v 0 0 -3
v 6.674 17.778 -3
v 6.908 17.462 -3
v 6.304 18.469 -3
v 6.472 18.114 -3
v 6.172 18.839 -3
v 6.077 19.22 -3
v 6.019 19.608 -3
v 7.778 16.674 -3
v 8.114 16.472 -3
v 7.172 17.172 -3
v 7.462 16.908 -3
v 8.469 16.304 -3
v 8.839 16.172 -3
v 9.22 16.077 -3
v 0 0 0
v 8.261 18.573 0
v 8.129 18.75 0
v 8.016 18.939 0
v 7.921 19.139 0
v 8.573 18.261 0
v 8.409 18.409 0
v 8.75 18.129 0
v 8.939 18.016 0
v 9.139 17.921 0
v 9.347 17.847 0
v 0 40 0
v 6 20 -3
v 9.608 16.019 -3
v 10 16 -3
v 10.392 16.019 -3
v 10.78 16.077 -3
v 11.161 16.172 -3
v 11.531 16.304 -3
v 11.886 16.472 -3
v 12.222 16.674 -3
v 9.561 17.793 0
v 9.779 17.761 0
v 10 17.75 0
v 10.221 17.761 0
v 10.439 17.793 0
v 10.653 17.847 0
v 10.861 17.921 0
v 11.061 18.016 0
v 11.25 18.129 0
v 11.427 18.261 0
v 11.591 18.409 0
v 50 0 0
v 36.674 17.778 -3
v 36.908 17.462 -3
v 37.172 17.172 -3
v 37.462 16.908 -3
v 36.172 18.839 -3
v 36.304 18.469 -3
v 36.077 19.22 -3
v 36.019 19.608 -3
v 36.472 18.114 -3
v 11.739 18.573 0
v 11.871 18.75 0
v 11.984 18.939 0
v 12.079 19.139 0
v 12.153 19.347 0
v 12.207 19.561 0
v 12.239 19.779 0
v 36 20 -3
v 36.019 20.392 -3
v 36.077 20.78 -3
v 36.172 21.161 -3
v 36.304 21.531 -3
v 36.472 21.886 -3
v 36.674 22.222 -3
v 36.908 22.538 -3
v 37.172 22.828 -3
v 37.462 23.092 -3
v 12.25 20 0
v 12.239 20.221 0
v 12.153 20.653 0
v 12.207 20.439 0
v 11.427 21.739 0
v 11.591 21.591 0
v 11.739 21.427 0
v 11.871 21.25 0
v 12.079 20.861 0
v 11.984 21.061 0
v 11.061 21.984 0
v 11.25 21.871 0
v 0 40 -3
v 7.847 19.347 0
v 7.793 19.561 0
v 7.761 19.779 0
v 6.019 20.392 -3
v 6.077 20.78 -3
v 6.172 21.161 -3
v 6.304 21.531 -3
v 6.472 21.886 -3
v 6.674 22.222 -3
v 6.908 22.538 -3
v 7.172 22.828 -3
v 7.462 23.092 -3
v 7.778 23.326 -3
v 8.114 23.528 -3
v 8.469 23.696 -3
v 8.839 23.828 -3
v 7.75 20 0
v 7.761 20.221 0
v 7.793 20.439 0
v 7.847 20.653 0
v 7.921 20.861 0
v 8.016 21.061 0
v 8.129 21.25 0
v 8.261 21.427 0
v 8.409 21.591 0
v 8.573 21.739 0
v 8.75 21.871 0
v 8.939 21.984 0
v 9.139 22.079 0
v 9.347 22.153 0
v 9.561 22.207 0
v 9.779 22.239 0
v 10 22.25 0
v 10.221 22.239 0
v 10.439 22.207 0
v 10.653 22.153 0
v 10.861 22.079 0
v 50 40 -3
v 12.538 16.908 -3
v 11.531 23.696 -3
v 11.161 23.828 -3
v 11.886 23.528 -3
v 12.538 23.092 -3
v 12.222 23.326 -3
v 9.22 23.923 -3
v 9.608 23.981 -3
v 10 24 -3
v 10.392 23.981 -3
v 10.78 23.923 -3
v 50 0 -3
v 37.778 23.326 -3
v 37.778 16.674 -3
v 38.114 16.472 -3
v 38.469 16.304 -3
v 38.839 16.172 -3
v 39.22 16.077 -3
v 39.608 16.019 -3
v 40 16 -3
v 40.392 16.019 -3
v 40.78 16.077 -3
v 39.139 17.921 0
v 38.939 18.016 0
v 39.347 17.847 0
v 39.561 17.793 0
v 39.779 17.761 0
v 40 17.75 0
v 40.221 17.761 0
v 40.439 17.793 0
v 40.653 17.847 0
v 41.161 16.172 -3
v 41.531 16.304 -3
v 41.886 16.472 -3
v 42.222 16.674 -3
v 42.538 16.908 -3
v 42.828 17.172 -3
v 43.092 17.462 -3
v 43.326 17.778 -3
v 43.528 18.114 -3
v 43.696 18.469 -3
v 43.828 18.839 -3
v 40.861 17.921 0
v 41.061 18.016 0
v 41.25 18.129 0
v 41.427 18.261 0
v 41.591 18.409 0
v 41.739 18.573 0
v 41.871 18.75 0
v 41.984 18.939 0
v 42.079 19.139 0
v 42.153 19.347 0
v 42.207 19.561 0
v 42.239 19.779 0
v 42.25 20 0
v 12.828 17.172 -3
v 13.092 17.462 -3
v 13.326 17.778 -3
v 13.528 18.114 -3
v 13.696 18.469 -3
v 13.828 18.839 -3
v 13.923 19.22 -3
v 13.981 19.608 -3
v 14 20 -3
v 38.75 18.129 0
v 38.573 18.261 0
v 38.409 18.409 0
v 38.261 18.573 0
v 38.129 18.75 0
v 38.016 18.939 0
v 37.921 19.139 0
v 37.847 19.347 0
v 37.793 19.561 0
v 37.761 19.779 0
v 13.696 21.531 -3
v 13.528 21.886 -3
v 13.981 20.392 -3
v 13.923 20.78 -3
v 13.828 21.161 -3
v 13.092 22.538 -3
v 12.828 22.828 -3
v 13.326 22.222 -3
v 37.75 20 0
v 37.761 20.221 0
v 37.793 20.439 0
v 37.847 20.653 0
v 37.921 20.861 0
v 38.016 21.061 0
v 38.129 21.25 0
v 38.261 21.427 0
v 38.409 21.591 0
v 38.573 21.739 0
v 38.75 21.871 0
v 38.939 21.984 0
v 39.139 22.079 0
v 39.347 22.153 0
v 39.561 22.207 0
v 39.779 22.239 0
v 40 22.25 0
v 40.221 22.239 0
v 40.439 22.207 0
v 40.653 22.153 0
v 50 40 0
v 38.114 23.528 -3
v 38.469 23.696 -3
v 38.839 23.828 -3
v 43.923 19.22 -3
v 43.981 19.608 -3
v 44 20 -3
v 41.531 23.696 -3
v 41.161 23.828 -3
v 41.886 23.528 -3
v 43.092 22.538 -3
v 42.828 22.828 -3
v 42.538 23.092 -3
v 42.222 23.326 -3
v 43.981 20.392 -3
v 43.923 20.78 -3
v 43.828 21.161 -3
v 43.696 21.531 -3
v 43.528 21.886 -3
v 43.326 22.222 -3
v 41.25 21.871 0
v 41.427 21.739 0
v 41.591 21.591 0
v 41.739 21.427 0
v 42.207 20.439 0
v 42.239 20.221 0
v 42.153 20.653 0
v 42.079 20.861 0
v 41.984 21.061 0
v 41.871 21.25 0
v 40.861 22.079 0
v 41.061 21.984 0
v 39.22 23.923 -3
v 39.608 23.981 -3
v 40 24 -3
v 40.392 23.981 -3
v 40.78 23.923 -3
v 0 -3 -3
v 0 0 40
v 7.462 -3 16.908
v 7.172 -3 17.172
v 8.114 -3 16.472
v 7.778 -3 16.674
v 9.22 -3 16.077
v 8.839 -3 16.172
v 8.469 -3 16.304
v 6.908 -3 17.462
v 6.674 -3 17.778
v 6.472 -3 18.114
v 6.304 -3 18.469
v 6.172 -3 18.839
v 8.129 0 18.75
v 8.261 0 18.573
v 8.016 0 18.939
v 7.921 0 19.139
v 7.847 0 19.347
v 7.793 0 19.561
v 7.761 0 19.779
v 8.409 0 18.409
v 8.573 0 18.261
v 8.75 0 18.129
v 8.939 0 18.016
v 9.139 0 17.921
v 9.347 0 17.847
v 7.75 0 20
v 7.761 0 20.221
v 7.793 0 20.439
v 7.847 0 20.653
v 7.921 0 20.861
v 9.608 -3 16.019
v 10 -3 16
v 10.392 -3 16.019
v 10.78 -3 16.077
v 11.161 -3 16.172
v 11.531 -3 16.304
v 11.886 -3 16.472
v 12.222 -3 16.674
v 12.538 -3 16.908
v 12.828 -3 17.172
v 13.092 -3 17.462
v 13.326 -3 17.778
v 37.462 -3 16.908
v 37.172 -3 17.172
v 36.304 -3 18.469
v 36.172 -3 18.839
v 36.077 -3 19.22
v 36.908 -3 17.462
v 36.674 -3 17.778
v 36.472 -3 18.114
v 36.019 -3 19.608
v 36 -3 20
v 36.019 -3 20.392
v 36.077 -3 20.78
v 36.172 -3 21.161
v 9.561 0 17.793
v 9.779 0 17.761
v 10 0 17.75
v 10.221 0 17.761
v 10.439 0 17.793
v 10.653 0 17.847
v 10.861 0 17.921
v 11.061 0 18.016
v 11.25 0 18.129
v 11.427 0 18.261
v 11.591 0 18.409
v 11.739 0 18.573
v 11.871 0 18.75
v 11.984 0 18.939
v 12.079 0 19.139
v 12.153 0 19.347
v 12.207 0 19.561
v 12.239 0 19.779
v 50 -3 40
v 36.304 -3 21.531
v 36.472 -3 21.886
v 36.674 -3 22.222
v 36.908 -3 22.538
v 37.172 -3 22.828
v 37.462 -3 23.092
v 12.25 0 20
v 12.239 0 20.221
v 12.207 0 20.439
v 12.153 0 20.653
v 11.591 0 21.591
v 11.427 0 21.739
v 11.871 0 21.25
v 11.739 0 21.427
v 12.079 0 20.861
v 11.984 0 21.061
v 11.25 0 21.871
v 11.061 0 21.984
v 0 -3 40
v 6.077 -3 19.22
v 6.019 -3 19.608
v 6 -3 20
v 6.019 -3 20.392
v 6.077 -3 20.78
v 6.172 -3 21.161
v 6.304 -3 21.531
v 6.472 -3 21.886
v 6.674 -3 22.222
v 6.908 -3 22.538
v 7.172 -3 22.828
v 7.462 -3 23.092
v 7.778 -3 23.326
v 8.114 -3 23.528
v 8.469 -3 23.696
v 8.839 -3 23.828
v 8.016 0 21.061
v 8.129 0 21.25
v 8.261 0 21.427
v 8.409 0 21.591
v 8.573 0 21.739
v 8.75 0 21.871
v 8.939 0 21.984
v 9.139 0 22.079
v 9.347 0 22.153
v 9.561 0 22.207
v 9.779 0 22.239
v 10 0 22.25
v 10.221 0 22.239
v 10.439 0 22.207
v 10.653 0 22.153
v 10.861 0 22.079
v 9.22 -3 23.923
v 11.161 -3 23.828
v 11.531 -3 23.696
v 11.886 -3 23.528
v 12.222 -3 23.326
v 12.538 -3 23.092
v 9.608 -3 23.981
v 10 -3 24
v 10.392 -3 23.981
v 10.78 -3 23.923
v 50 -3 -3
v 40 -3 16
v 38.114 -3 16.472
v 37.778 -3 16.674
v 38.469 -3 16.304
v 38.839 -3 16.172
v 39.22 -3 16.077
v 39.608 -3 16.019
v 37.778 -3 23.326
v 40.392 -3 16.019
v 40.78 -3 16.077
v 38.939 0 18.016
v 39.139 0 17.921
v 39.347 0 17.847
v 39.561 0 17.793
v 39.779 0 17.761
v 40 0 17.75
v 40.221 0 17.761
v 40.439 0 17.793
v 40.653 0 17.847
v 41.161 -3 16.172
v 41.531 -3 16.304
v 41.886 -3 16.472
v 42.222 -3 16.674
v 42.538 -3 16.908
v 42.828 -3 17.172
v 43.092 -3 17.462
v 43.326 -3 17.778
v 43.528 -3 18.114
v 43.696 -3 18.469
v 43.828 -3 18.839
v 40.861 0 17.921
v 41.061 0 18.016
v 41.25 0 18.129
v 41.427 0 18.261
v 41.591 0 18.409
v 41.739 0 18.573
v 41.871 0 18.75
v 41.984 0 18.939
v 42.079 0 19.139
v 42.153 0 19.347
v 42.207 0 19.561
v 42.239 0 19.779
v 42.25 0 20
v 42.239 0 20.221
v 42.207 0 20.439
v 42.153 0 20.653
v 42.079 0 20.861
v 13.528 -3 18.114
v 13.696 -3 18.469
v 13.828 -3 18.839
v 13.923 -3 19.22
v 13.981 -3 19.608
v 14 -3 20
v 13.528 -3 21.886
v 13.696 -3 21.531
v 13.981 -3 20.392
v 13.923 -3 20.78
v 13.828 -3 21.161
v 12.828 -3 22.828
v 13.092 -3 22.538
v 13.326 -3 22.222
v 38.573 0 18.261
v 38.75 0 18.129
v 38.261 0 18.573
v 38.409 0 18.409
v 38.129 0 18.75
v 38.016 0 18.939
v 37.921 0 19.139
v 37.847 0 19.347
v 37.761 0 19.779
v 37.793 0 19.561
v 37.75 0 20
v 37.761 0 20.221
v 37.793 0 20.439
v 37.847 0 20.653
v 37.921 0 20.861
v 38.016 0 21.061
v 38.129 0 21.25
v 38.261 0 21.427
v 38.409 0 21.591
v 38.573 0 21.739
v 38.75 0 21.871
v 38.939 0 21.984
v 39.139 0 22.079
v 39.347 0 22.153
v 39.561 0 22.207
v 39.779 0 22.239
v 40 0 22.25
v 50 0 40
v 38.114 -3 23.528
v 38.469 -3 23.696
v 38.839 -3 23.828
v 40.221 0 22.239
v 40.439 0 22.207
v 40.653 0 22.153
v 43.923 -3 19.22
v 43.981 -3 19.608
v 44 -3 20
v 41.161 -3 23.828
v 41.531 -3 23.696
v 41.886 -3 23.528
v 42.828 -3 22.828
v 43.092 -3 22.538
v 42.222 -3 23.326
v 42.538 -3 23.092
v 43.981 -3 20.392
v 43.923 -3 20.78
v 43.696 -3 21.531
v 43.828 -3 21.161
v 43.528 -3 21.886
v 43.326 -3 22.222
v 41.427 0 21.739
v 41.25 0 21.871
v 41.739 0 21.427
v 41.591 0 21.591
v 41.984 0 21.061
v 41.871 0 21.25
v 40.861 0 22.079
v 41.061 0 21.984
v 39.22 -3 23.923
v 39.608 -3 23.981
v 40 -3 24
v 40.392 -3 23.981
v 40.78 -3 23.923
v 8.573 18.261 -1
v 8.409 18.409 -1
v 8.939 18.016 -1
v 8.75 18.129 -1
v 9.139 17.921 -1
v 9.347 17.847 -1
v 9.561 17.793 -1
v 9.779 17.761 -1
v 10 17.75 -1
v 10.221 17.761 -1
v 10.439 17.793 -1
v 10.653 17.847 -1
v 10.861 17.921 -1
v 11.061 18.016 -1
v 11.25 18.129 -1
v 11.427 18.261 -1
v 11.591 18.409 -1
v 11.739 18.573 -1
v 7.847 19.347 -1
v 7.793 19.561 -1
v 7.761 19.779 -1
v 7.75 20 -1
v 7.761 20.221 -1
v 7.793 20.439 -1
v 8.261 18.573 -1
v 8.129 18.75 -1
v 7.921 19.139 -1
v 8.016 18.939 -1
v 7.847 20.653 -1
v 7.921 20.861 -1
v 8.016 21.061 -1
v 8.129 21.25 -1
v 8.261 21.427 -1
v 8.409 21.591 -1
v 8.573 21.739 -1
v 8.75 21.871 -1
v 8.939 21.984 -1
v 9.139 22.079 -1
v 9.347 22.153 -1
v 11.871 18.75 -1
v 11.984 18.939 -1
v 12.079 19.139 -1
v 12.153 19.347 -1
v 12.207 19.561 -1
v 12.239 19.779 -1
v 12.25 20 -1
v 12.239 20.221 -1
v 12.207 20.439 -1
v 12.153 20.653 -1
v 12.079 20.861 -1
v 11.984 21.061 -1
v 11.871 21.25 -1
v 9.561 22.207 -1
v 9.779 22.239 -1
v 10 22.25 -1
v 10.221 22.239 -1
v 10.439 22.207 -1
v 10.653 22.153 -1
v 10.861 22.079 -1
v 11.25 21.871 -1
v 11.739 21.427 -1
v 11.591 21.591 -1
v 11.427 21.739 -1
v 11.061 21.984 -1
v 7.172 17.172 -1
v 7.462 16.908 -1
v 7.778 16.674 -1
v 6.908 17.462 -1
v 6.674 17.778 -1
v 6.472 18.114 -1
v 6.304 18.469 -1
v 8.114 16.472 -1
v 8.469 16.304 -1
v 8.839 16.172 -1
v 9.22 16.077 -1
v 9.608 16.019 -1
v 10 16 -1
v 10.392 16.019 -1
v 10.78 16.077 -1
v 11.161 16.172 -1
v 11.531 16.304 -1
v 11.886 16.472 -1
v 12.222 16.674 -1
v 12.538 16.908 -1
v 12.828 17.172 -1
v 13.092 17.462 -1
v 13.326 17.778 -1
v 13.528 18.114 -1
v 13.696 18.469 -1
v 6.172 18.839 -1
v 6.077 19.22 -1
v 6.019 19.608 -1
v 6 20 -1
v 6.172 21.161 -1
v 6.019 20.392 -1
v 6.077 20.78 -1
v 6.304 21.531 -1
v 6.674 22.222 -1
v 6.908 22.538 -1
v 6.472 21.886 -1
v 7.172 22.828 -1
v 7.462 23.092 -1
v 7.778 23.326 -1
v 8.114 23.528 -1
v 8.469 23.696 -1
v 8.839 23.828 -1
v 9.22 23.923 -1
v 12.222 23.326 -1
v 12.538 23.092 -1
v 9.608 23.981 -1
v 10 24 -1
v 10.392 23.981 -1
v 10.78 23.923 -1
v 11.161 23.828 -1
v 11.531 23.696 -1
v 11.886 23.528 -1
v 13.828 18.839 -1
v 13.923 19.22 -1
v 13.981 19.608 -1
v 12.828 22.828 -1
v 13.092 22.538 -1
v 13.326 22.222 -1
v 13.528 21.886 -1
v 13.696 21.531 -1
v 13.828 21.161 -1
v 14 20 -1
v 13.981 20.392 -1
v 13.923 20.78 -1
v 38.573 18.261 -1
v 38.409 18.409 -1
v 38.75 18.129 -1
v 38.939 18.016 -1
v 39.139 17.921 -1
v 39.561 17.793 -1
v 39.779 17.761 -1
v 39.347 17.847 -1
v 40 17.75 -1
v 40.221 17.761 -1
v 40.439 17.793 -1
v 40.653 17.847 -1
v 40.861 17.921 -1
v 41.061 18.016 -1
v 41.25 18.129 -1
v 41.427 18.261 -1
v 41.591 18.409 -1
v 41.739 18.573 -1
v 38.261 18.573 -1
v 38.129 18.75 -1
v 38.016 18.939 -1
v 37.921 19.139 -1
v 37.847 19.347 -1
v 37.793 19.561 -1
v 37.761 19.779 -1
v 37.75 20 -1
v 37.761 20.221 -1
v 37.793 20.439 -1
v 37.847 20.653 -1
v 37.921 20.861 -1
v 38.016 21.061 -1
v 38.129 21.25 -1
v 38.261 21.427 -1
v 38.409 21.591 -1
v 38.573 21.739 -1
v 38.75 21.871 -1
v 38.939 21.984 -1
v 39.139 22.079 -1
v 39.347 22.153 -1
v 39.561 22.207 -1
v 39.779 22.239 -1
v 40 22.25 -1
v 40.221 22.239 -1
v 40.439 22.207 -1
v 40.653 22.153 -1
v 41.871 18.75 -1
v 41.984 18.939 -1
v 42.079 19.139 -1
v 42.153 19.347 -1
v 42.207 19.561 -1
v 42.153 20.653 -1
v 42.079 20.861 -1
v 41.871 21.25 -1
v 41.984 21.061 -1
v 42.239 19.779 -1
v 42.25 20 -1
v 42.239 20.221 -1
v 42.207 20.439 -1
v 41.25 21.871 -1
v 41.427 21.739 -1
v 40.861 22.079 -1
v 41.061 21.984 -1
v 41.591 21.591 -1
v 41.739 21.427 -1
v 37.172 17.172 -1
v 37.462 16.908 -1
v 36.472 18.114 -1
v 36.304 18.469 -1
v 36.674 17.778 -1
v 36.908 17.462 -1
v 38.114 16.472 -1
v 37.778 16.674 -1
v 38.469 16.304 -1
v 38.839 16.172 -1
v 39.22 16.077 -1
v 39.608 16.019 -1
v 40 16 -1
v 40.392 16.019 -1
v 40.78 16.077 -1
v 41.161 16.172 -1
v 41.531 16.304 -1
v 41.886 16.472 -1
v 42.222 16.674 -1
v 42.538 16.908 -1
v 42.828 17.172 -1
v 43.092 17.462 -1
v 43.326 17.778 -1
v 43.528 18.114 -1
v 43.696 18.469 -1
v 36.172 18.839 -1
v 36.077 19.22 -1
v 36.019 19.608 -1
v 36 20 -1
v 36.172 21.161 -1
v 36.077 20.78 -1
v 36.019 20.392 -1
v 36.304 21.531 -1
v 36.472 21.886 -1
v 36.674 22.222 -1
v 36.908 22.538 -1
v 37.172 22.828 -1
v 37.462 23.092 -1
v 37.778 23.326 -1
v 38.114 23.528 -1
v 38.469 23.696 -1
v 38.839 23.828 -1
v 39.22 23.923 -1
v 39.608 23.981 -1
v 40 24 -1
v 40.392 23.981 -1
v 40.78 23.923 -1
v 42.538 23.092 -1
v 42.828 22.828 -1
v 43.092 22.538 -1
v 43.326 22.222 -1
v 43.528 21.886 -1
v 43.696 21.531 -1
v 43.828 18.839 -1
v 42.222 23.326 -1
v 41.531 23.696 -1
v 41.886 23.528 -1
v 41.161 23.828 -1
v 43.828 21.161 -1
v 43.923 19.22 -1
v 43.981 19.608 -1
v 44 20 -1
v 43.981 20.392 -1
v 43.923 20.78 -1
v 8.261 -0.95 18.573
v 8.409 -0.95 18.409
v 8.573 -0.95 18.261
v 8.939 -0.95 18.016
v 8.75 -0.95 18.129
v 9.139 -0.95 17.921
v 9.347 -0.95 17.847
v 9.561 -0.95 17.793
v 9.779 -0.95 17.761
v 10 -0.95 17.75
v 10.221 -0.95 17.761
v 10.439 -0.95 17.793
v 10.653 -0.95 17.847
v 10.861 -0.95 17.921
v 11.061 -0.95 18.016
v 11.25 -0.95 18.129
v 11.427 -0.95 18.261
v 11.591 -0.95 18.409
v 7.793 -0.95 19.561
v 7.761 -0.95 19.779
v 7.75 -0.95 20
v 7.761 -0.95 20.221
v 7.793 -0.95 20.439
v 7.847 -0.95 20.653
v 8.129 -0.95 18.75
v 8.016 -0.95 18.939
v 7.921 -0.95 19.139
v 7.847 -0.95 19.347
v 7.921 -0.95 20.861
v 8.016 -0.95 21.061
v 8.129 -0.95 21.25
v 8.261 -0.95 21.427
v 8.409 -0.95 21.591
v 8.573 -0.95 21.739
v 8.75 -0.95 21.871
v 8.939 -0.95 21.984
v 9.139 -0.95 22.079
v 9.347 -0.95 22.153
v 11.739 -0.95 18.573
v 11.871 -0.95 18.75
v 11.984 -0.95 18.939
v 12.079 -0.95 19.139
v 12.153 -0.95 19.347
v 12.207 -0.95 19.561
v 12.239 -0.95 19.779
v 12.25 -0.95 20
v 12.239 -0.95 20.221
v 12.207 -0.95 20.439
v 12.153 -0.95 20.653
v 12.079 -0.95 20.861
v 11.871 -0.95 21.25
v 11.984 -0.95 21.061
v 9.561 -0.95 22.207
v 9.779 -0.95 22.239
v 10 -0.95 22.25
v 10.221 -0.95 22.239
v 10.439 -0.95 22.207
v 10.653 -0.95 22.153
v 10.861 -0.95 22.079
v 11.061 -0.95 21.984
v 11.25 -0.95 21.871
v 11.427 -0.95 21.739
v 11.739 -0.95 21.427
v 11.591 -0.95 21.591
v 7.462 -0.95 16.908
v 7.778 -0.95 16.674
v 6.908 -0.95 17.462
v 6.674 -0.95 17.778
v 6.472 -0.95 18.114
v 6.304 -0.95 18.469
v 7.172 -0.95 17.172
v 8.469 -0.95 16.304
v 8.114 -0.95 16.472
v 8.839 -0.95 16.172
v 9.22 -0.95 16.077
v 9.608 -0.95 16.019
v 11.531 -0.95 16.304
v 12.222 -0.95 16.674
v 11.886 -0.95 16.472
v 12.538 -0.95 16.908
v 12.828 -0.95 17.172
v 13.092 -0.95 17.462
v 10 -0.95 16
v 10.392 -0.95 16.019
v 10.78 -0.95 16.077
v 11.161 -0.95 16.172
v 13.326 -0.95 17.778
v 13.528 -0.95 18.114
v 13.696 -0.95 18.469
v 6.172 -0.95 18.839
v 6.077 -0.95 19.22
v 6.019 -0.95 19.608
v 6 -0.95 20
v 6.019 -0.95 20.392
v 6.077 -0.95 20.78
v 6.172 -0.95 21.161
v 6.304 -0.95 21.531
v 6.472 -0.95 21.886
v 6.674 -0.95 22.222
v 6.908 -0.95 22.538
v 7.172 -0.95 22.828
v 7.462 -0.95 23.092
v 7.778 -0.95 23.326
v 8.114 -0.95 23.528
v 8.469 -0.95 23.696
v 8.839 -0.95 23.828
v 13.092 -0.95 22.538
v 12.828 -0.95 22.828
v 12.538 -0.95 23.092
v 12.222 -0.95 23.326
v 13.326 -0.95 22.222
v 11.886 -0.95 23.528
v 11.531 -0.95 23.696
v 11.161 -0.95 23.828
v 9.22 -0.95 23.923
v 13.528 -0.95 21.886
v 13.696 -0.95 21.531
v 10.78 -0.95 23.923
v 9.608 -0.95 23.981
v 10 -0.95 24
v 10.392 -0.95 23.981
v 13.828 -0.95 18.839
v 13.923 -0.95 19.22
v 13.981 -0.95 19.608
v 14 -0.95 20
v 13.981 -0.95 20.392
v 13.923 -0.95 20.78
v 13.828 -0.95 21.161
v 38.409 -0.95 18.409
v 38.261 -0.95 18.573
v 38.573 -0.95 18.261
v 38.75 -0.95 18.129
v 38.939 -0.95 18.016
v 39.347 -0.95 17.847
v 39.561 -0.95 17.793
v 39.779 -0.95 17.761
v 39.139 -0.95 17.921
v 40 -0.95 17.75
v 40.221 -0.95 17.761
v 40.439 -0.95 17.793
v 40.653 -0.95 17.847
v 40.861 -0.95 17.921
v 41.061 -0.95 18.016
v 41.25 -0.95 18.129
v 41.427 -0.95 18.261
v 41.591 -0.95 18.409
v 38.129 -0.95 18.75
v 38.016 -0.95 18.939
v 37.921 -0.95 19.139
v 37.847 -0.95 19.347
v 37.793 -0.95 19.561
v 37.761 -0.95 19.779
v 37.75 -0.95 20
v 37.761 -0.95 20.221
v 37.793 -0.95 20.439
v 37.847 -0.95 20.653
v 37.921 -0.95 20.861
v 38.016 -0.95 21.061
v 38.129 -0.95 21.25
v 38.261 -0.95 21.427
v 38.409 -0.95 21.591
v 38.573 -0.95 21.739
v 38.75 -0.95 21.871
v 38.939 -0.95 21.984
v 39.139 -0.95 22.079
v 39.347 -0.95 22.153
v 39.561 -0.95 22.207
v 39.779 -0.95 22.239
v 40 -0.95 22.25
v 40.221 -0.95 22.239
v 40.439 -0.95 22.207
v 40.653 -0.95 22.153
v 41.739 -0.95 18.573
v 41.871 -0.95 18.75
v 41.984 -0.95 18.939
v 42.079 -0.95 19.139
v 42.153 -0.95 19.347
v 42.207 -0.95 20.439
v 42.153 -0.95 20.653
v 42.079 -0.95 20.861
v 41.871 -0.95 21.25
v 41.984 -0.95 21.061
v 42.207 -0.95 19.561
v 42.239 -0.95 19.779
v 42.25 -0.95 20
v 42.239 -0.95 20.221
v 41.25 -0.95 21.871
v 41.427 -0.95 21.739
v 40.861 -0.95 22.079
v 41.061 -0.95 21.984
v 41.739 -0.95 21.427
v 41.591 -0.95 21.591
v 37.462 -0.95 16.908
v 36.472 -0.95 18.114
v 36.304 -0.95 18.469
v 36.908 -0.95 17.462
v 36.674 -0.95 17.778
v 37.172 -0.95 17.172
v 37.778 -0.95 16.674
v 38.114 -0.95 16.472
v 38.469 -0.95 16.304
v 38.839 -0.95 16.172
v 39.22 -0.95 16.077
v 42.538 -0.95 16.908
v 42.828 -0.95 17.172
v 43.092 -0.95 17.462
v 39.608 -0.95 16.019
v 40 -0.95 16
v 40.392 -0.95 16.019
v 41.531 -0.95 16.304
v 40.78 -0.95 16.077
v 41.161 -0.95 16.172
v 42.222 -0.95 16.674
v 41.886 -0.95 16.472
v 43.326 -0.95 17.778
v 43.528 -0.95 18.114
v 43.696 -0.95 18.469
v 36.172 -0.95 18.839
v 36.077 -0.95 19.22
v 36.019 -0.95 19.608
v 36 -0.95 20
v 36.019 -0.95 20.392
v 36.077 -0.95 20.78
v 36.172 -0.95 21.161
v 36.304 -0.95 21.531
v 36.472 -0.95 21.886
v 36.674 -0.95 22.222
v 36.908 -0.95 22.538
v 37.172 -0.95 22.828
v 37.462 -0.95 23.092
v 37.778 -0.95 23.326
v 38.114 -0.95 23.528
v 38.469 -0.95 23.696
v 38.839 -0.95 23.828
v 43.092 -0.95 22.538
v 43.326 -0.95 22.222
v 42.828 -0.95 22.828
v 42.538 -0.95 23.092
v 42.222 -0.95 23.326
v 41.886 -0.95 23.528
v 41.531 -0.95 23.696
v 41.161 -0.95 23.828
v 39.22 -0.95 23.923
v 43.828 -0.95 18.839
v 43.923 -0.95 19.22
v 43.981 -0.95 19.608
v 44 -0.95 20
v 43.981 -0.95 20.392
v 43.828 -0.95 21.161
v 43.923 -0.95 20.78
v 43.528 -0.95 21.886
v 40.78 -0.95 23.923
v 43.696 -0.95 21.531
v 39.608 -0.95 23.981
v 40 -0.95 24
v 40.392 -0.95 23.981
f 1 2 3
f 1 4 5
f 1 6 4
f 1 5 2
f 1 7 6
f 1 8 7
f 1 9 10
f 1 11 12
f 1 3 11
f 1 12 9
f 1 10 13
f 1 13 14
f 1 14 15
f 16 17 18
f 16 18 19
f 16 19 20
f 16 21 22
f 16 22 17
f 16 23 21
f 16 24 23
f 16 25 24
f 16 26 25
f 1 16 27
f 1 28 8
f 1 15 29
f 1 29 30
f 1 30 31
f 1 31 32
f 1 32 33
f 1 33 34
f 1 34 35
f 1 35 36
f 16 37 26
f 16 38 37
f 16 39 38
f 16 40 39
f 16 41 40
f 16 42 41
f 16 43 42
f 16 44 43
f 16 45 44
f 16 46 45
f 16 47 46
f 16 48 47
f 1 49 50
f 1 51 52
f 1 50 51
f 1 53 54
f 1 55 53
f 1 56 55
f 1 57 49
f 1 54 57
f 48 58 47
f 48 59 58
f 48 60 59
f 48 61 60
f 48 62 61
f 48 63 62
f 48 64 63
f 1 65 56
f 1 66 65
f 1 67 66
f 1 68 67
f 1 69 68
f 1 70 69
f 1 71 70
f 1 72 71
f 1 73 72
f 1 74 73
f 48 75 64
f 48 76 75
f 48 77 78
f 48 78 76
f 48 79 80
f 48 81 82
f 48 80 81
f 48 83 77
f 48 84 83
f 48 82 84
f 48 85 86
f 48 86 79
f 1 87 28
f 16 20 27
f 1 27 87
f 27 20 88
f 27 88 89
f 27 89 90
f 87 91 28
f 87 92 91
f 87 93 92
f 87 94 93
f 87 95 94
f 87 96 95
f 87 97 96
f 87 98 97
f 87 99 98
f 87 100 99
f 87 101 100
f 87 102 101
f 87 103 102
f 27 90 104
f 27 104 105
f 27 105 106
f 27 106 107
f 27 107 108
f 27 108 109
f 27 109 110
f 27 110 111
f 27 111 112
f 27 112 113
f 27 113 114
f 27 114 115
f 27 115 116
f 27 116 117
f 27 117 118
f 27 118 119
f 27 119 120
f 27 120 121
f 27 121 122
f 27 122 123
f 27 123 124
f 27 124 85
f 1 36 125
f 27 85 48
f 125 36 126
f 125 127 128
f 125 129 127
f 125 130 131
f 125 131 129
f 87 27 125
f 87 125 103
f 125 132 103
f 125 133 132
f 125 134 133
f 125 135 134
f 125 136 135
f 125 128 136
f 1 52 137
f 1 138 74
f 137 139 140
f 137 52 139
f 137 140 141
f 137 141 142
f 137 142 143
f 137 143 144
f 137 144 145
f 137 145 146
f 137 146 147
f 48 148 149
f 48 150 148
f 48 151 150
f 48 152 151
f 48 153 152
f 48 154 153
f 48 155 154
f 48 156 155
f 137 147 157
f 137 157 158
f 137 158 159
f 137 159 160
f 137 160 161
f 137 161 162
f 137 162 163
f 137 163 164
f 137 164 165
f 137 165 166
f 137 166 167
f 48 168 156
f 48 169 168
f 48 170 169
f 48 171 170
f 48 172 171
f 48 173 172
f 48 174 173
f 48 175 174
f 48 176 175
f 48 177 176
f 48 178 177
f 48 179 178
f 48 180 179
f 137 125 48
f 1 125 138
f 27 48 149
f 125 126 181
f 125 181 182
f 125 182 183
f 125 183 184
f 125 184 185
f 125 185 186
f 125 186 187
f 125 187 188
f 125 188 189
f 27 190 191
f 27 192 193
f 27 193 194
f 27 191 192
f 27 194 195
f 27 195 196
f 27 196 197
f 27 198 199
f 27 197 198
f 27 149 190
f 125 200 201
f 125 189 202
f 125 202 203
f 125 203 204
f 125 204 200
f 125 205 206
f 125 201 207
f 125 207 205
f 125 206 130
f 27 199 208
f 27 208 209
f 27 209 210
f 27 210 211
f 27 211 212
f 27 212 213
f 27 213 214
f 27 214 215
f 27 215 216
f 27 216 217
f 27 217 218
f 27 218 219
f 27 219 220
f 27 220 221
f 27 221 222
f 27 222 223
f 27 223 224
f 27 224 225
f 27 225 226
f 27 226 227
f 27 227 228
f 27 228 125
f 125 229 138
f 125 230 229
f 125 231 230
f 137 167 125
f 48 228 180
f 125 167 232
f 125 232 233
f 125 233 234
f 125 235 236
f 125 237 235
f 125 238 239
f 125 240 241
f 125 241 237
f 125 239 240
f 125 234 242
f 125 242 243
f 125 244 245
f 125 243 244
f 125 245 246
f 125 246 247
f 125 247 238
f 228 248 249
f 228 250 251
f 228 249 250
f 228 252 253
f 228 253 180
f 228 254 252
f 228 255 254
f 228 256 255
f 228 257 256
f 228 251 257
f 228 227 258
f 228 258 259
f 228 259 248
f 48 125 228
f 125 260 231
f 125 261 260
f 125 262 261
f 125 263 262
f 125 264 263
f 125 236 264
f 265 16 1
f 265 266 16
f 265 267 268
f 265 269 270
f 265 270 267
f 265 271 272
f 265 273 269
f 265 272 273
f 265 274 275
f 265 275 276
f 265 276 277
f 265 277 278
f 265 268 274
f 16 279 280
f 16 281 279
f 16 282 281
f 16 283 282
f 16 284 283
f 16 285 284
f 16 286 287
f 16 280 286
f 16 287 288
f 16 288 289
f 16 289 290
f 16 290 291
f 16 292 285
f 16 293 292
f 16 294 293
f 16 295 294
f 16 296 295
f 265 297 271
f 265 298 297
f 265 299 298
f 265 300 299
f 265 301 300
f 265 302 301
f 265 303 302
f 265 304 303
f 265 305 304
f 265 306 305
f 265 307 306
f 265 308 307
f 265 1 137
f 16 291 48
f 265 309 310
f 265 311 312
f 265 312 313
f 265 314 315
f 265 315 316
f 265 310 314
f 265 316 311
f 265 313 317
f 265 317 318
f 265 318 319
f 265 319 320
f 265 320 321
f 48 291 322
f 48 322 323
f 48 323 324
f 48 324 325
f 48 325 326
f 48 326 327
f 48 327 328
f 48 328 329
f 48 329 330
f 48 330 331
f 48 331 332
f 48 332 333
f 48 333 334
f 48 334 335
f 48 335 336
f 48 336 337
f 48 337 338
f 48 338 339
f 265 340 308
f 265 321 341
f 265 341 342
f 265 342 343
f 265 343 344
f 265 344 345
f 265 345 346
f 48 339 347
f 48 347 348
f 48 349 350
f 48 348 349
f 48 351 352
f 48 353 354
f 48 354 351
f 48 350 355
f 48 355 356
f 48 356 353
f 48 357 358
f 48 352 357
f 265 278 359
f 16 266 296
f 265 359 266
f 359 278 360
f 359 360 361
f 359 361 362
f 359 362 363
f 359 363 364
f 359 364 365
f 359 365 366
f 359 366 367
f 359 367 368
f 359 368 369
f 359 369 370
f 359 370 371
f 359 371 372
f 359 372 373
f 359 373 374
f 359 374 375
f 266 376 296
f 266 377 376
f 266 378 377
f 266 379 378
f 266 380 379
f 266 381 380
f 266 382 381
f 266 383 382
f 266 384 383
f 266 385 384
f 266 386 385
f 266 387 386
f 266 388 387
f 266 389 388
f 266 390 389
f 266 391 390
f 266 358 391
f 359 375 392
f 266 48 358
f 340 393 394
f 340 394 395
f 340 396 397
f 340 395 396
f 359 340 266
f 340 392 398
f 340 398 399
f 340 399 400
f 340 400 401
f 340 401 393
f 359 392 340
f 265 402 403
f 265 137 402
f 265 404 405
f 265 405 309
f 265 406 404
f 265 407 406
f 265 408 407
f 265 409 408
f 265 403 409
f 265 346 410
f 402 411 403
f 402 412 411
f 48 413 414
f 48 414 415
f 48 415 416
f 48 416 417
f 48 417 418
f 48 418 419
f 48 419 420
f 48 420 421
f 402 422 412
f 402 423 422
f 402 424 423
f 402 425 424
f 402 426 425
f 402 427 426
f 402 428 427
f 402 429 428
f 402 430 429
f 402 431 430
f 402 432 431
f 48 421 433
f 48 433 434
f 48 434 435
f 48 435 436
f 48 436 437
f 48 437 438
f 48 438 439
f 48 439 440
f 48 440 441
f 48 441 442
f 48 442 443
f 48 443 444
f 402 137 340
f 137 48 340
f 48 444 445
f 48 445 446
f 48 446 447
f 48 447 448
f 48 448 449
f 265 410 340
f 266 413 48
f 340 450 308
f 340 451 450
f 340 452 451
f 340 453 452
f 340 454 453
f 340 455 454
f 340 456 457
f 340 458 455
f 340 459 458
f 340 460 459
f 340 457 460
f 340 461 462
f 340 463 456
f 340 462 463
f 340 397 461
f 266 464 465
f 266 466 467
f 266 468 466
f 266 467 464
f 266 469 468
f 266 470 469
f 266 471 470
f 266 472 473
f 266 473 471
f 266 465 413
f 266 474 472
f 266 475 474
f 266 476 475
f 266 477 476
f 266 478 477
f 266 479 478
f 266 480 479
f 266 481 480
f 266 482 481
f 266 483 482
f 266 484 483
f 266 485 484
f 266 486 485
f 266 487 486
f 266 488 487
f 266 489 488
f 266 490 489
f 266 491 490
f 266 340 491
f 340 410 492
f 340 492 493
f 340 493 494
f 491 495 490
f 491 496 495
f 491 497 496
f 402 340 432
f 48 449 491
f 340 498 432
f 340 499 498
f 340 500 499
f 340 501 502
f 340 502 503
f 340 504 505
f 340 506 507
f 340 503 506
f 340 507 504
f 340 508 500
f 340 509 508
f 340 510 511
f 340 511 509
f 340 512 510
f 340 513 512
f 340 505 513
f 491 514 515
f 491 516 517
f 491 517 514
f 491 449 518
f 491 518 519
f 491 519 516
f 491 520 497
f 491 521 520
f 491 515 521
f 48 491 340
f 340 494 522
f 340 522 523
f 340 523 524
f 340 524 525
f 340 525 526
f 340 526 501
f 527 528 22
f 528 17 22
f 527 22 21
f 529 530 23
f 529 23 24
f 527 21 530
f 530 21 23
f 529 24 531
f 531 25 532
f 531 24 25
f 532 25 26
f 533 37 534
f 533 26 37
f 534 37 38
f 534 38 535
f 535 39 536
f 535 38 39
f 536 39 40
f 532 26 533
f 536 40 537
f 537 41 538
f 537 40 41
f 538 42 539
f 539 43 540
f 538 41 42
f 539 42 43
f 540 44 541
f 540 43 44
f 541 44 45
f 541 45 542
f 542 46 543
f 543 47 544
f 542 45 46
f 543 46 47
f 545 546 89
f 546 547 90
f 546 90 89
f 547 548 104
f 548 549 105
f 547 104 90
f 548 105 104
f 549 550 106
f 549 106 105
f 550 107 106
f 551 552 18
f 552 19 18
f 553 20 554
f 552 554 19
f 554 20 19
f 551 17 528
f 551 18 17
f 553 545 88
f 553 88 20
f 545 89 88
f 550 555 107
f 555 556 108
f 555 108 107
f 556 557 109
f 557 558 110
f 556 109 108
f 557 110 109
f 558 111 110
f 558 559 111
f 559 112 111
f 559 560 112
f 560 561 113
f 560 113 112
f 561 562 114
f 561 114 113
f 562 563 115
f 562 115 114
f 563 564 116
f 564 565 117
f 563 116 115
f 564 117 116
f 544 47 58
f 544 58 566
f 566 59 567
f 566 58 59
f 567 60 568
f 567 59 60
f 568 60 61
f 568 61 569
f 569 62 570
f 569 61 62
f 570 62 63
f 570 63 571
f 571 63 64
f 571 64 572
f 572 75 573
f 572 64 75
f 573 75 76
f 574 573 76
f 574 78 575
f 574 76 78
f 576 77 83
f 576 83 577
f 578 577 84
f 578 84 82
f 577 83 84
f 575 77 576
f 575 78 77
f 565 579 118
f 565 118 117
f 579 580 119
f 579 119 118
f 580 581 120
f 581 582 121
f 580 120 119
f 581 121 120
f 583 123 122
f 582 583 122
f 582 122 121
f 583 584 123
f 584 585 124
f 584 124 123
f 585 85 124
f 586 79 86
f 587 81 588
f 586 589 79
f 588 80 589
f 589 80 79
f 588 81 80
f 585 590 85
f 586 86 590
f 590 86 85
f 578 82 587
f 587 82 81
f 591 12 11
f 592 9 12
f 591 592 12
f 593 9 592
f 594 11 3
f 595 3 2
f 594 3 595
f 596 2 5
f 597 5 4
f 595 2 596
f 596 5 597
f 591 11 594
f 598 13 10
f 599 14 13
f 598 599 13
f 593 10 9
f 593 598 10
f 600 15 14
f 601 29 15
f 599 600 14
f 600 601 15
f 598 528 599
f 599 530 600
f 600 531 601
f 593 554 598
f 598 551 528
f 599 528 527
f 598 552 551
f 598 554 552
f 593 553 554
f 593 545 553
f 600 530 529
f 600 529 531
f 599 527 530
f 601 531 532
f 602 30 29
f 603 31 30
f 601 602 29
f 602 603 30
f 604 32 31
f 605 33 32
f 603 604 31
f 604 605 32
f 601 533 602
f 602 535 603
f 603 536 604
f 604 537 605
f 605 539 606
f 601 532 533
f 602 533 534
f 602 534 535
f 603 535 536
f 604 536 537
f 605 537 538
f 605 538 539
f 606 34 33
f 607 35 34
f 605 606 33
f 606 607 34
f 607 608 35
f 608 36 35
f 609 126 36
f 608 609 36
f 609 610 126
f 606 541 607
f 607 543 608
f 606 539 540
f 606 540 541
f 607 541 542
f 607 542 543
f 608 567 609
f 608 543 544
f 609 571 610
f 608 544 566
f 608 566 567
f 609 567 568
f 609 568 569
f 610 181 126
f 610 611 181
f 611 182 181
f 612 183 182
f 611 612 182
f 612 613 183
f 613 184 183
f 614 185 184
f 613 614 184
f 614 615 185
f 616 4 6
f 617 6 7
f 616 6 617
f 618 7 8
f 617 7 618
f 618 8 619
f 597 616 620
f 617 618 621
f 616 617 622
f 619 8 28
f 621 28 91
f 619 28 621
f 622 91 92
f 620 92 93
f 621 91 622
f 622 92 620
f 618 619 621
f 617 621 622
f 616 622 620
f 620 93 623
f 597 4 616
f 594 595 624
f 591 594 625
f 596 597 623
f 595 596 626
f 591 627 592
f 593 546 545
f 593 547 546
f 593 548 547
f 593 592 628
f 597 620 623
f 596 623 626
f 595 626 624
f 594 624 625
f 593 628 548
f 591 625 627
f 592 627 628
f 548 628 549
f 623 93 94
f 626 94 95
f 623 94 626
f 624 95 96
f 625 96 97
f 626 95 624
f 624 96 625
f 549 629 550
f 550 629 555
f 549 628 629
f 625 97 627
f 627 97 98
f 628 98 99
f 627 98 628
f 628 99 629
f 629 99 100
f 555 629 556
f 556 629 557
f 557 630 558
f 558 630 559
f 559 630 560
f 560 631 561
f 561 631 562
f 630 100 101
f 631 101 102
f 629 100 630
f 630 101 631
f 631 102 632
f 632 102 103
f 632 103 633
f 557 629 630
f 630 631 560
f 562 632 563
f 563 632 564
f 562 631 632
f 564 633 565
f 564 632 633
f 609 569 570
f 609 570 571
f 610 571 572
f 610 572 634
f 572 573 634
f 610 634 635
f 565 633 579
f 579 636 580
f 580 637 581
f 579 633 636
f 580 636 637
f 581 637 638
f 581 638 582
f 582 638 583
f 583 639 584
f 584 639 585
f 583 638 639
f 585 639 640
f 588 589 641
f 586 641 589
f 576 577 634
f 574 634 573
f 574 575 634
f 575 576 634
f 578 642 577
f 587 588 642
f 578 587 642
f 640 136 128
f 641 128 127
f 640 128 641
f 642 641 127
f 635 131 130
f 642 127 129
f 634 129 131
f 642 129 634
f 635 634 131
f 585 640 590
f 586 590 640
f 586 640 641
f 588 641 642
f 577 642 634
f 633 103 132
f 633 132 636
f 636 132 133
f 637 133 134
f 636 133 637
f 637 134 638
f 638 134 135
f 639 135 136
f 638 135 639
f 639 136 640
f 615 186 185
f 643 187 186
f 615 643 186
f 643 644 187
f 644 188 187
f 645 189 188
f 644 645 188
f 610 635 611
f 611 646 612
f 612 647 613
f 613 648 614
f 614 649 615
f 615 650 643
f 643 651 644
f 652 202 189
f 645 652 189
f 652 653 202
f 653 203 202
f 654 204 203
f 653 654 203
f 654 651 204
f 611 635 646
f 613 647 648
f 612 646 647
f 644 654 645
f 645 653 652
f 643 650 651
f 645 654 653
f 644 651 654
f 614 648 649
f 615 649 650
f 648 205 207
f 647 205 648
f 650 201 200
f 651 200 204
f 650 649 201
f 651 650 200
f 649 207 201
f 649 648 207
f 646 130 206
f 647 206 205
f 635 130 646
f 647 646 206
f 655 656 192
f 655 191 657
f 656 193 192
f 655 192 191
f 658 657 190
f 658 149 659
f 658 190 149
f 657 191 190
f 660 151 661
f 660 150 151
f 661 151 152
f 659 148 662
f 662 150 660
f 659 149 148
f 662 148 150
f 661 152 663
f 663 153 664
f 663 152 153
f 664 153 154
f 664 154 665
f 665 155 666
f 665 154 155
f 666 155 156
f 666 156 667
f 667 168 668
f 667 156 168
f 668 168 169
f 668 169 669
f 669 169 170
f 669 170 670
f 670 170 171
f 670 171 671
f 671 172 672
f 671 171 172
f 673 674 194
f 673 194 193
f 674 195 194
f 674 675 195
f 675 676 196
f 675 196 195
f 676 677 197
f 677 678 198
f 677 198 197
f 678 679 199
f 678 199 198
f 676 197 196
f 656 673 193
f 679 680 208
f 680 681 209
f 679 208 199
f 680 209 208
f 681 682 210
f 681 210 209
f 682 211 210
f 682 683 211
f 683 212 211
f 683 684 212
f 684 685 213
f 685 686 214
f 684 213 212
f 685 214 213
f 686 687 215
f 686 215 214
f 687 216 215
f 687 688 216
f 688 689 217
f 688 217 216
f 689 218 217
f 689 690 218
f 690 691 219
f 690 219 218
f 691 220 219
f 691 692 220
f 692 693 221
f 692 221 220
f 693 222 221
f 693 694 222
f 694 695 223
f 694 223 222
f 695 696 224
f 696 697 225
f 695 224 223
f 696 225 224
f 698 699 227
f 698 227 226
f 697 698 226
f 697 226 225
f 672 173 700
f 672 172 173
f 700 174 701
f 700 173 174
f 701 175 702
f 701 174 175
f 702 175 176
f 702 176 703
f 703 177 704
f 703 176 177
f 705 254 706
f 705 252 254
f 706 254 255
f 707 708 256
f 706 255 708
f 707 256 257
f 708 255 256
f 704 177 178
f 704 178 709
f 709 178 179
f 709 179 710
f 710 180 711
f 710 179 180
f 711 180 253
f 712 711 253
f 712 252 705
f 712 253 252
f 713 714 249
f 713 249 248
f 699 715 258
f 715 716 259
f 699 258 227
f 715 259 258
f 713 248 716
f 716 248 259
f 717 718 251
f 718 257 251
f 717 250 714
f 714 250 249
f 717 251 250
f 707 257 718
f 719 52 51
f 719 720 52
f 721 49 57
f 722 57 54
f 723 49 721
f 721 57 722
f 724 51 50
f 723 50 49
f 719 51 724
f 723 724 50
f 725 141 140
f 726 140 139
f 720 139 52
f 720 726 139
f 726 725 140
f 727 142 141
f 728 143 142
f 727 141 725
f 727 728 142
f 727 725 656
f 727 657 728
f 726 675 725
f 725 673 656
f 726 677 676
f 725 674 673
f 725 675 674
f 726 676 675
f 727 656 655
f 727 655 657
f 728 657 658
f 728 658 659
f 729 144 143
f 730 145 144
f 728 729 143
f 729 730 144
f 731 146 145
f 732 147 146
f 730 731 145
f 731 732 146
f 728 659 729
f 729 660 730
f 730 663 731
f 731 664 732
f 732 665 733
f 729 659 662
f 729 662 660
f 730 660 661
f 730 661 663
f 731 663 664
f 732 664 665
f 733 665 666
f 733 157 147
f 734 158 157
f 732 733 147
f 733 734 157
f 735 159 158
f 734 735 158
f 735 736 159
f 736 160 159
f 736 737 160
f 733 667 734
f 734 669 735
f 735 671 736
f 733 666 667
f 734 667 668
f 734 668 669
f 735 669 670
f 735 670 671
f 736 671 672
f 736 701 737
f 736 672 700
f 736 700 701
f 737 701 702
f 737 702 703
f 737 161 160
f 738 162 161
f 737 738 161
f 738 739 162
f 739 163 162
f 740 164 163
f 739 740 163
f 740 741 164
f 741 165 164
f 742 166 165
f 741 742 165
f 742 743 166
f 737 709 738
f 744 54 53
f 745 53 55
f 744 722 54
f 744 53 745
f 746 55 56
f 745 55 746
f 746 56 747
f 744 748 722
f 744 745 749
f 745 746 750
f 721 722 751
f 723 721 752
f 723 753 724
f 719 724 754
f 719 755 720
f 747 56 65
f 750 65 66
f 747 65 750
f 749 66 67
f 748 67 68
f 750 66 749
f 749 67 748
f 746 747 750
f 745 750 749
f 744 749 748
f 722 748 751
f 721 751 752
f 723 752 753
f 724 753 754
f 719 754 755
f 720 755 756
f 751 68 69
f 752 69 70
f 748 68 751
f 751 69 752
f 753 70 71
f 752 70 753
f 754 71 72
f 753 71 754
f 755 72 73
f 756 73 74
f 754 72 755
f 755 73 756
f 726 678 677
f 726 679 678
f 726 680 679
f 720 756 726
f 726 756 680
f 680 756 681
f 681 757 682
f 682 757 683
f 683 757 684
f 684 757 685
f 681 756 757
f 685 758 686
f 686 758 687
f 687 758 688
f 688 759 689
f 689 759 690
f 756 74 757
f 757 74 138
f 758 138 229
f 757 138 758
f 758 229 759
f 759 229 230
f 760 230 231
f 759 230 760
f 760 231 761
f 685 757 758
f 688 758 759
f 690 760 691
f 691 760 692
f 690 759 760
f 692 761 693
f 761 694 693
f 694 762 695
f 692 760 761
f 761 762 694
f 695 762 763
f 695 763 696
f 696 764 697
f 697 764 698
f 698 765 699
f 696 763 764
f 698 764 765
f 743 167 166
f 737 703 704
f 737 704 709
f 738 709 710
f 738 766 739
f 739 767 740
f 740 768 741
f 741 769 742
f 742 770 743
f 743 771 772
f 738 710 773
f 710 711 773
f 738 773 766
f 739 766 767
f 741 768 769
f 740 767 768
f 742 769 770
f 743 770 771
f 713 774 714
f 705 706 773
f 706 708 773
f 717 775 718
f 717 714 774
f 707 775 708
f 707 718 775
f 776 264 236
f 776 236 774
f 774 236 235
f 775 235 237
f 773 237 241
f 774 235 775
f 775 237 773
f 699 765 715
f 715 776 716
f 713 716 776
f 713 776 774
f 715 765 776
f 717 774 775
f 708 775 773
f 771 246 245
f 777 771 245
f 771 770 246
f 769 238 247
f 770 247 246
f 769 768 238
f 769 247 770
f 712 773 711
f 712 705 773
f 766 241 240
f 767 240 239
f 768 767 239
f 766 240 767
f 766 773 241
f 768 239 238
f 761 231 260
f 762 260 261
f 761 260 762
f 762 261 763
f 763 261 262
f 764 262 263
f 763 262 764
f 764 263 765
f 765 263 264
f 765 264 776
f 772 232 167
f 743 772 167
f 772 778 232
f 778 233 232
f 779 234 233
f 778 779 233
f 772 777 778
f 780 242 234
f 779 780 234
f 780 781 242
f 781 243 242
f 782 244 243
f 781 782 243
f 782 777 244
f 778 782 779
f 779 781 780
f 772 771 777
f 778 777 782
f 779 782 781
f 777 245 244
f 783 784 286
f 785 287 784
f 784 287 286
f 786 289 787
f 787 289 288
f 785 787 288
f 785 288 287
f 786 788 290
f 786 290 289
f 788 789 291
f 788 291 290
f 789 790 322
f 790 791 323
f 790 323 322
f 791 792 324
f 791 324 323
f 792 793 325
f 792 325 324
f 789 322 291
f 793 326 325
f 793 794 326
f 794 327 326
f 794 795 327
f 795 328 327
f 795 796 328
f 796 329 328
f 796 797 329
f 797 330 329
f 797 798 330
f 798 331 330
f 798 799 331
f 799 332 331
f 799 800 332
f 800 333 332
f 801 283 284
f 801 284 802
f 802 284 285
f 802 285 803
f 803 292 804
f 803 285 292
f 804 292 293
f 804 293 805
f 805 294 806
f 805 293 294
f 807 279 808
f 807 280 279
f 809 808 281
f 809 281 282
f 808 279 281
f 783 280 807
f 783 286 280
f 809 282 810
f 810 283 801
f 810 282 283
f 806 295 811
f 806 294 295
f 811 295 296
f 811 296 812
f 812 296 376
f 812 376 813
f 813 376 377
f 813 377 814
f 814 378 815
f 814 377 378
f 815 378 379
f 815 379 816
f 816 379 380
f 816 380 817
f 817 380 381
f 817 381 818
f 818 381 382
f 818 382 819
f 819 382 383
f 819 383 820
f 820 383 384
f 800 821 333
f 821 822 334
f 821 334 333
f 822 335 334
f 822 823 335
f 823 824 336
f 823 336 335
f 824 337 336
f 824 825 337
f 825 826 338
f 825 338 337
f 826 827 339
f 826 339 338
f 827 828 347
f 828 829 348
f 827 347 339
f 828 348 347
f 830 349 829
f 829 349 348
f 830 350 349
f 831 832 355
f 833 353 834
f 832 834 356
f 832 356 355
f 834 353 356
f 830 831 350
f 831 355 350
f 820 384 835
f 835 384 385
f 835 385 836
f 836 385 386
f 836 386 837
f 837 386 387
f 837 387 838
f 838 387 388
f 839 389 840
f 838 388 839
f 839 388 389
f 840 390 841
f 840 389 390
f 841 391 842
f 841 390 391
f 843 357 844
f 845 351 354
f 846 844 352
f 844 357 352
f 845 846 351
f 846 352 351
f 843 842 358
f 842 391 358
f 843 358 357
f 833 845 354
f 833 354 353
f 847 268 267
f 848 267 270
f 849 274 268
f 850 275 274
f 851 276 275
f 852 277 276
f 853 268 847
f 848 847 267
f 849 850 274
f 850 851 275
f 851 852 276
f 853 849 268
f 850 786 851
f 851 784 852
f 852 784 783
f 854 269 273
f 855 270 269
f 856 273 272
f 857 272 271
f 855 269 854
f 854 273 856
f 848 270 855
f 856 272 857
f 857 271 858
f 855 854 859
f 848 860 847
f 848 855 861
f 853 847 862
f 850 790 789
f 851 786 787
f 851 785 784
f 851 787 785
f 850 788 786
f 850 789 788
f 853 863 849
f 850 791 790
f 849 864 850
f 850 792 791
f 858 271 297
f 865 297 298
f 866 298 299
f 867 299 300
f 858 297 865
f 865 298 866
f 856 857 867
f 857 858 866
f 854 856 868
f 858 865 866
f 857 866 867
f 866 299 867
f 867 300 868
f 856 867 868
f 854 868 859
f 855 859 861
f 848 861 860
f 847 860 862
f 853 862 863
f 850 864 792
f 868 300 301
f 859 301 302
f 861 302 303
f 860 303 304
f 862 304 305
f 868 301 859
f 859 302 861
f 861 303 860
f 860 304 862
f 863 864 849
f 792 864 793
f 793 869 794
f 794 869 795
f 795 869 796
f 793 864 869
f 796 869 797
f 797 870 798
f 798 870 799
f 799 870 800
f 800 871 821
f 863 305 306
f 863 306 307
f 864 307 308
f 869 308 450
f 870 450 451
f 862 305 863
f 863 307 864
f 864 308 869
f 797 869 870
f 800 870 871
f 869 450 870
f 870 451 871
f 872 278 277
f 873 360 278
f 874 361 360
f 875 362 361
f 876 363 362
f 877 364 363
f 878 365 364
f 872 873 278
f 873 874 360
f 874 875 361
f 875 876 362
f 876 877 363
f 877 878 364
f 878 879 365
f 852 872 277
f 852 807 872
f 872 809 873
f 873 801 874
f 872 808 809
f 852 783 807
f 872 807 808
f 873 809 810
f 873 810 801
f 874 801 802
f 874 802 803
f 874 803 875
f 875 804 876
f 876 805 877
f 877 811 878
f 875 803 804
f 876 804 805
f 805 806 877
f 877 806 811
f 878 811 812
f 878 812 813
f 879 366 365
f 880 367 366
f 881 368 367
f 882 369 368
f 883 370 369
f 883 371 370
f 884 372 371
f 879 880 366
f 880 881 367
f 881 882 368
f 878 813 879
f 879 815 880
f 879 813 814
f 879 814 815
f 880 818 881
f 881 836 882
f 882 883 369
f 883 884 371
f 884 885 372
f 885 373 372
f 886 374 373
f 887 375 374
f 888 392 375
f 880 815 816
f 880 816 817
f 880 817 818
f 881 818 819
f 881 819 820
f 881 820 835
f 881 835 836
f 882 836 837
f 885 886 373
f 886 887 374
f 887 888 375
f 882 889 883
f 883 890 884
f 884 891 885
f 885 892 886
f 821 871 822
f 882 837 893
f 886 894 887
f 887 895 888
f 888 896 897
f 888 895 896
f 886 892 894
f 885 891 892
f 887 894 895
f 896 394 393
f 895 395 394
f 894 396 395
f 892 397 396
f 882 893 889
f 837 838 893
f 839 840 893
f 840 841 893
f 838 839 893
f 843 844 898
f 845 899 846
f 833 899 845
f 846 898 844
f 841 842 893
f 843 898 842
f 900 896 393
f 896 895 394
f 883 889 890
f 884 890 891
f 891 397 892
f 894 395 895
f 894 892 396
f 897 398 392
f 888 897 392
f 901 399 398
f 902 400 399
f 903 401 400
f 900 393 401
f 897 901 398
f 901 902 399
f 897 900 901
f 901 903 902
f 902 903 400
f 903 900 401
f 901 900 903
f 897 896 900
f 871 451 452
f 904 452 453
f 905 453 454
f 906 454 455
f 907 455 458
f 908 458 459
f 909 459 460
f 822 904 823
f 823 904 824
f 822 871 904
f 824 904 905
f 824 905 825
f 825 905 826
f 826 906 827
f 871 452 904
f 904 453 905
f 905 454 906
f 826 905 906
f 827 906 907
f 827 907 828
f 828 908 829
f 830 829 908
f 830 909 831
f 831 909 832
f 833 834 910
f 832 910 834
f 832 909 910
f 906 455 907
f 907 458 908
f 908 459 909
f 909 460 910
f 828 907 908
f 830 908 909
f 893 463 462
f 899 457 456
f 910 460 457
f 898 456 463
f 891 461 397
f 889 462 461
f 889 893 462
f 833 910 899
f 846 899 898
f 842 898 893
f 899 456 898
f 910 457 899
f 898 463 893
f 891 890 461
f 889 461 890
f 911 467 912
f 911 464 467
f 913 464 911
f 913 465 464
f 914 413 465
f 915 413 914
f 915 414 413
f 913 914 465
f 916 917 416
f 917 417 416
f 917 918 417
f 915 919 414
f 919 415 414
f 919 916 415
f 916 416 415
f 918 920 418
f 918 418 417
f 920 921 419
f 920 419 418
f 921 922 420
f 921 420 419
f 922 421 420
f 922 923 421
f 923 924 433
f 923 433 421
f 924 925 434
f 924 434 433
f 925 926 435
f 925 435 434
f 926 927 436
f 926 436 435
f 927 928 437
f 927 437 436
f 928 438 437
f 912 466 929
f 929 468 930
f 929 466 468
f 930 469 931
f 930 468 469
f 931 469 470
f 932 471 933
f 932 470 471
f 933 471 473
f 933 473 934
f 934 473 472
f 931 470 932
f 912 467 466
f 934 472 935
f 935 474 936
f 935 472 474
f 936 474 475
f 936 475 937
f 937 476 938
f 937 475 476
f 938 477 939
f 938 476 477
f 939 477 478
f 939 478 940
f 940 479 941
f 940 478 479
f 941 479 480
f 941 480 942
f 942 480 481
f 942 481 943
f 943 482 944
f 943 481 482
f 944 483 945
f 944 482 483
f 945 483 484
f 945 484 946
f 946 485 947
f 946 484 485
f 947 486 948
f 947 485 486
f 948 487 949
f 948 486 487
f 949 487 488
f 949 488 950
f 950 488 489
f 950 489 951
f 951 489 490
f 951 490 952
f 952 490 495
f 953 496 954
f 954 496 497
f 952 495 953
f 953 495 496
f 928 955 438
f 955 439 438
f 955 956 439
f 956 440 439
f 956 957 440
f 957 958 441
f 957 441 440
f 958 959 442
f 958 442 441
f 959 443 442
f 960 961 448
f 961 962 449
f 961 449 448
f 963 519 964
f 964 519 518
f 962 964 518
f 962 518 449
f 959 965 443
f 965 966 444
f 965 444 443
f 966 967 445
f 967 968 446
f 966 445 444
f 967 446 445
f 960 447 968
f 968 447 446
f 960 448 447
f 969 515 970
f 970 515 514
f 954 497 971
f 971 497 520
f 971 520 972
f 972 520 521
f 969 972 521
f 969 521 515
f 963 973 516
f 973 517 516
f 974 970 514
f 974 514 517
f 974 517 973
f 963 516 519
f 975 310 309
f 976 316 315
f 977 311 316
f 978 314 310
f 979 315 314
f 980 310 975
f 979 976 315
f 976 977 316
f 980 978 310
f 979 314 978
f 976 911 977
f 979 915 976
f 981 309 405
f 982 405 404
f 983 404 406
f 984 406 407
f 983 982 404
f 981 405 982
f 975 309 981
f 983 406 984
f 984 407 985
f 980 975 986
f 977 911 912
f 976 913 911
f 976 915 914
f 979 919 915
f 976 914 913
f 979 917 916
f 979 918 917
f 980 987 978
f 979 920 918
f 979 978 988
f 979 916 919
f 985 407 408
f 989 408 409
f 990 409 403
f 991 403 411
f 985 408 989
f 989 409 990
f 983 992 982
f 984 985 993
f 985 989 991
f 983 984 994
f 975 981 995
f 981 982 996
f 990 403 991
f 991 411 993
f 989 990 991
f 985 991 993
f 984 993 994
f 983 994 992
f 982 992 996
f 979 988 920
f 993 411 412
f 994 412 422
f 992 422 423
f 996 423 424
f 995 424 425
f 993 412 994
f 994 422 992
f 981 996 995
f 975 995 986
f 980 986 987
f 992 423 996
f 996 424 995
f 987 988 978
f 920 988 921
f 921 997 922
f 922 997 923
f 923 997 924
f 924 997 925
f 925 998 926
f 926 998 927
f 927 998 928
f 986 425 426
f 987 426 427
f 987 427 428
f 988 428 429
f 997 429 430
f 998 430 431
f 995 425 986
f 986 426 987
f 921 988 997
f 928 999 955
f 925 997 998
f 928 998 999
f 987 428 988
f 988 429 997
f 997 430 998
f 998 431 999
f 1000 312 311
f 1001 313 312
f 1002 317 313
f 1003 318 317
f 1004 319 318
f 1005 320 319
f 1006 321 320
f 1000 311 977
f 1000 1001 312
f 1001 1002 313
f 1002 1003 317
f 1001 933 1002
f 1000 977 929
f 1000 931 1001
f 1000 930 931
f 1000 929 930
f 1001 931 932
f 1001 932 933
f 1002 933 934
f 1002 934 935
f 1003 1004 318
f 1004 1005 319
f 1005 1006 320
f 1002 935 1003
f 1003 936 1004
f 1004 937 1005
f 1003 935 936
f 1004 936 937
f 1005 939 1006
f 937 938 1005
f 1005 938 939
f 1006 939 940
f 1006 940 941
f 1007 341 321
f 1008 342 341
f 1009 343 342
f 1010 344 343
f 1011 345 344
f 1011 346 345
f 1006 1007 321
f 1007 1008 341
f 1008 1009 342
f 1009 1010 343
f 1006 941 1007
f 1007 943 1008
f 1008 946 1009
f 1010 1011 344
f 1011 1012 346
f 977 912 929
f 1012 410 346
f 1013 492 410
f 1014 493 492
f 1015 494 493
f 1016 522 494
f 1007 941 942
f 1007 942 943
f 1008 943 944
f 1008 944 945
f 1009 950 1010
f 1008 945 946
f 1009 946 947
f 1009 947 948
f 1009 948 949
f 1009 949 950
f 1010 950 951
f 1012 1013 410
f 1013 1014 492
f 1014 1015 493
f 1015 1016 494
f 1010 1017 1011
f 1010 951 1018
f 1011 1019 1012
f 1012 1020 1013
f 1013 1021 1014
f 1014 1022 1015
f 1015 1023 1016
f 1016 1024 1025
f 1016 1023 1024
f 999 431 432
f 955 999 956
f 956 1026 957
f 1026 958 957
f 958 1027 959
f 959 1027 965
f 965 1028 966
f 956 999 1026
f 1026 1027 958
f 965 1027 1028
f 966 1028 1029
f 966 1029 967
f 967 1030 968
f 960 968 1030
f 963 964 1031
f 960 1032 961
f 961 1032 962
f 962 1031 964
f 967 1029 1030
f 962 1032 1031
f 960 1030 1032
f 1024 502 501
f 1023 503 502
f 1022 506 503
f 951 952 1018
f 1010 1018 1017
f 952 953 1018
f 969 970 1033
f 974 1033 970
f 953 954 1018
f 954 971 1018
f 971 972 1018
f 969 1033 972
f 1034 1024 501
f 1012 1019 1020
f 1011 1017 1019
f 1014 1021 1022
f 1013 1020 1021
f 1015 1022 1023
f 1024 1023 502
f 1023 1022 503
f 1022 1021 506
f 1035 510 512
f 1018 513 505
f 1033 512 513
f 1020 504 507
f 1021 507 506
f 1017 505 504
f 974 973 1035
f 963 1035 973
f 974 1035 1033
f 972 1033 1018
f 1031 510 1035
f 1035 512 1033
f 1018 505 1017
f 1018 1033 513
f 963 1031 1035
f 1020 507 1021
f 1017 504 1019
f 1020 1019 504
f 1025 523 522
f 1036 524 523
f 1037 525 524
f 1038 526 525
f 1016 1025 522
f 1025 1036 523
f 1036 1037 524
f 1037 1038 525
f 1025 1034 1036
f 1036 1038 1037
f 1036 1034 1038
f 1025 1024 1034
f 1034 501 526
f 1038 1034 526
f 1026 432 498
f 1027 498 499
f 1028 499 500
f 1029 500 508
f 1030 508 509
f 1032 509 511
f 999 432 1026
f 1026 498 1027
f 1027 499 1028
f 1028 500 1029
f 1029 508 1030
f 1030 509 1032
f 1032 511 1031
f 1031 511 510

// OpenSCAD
// L-bracket with countersunk holes

$fn = 64;

// Parameters
width     = 50;   // X direction (幅)
depth     = 40;   // Y direction (水平面の奥行き)
height    = 40;   // Z direction (垂直面の高さ)
thickness = 3;    // 板厚

hole_dia    = 4.5;
csk_dia     = 8;
csk_depth   = 2;
edge_offset = 10;

eps = 0.05;

// 各面の「中心線」= 奥行き/高さ方向の中央線。
// その上に、幅方向で縁から 10mm 内側に左右対称な 2 点。
x_a = edge_offset;          // 10
x_b = width - edge_offset;  // 40

// 水平面: 中心線は y = depth/2
y_center = depth / 2;
// 垂直面: 中心線は z = height/2
z_center = height / 2;

module l_bracket() {
    difference() {
        union() {
            // 水平フランジ: 内側(上)面が z=0、+Y 方向に伸びる
            translate([0, 0, -thickness])
                cube([width, depth, thickness]);

            // 垂直フランジ: 内側面が y=0、+Z 方向に伸びる
            // コーナー部 (z: -thickness..0) も含めて一体化
            translate([0, -thickness, -thickness])
                cube([width, thickness, height + thickness]);
        }

        // --- 水平フランジの穴 (軸は Z 方向) ---
        // 外側(ボルト頭側)は -Z 面なので、そちらに皿座面
        for (x = [x_a, x_b]) {
            translate([x, y_center, 0]) {
                // 貫通穴
                translate([0, 0, -thickness - eps])
                    cylinder(d = hole_dia, h = thickness + 2*eps);
                // 皿座面 (外側 = -Z 面側)
                translate([0, 0, -thickness - eps])
                    cylinder(d = csk_dia, h = csk_depth + eps);
            }
        }

        // --- 垂直フランジの穴 (軸は Y 方向) ---
        // 外側は -Y 面なので、そちらに皿座面
        for (x = [x_a, x_b]) {
            translate([x, 0, z_center]) {
                // 貫通穴 (Y 方向)
                translate([0, eps, 0])
                    rotate([90, 0, 0])
                        cylinder(d = hole_dia, h = thickness + 2*eps);
                // 皿座面 (外側 = -Y 面側)
                translate([0, -thickness + csk_depth + eps, 0])
                    rotate([90, 0, 0])
                        cylinder(d = csk_dia, h = csk_depth + eps);
            }
        }
    }
}

l_bracket();
